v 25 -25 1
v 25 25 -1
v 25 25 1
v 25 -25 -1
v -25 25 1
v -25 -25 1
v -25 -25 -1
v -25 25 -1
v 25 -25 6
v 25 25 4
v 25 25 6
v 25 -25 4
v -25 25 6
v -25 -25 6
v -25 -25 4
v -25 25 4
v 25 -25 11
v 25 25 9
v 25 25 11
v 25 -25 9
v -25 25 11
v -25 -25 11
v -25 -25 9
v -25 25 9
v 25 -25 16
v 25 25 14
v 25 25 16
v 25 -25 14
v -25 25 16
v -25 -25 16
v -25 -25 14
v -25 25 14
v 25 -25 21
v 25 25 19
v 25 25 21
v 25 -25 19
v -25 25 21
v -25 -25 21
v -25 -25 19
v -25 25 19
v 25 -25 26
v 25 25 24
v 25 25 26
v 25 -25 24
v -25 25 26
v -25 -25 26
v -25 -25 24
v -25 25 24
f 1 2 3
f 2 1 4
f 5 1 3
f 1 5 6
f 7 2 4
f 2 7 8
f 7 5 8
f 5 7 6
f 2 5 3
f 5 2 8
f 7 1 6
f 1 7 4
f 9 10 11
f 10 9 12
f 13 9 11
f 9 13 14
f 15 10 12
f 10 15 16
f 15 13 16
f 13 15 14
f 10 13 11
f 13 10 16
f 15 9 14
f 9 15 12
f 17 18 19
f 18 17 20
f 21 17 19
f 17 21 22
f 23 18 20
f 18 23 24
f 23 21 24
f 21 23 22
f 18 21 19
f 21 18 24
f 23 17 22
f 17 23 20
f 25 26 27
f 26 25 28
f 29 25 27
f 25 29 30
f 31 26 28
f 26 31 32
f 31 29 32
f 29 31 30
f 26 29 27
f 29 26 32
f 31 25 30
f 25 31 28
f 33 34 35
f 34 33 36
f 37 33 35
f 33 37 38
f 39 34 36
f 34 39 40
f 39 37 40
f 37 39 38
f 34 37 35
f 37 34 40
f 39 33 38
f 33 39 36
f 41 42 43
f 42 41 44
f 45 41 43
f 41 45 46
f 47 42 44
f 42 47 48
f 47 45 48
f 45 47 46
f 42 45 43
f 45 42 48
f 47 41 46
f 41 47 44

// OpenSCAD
// Define the dimensions of the flat plate
module flat_plate(length = 50, width = 50, thickness = 2) {
    cube([length, width, thickness], center = true);
}

// Stack the flat plates vertically
module stacked_flat_plates(num_plates = 6, spacing = 5) {
    for (i = [0 : num_plates - 1]) {
        translate([0, 0, i * spacing])
            flat_plate();
    }
}

// Generate the 3D model
stacked_flat_plates();
